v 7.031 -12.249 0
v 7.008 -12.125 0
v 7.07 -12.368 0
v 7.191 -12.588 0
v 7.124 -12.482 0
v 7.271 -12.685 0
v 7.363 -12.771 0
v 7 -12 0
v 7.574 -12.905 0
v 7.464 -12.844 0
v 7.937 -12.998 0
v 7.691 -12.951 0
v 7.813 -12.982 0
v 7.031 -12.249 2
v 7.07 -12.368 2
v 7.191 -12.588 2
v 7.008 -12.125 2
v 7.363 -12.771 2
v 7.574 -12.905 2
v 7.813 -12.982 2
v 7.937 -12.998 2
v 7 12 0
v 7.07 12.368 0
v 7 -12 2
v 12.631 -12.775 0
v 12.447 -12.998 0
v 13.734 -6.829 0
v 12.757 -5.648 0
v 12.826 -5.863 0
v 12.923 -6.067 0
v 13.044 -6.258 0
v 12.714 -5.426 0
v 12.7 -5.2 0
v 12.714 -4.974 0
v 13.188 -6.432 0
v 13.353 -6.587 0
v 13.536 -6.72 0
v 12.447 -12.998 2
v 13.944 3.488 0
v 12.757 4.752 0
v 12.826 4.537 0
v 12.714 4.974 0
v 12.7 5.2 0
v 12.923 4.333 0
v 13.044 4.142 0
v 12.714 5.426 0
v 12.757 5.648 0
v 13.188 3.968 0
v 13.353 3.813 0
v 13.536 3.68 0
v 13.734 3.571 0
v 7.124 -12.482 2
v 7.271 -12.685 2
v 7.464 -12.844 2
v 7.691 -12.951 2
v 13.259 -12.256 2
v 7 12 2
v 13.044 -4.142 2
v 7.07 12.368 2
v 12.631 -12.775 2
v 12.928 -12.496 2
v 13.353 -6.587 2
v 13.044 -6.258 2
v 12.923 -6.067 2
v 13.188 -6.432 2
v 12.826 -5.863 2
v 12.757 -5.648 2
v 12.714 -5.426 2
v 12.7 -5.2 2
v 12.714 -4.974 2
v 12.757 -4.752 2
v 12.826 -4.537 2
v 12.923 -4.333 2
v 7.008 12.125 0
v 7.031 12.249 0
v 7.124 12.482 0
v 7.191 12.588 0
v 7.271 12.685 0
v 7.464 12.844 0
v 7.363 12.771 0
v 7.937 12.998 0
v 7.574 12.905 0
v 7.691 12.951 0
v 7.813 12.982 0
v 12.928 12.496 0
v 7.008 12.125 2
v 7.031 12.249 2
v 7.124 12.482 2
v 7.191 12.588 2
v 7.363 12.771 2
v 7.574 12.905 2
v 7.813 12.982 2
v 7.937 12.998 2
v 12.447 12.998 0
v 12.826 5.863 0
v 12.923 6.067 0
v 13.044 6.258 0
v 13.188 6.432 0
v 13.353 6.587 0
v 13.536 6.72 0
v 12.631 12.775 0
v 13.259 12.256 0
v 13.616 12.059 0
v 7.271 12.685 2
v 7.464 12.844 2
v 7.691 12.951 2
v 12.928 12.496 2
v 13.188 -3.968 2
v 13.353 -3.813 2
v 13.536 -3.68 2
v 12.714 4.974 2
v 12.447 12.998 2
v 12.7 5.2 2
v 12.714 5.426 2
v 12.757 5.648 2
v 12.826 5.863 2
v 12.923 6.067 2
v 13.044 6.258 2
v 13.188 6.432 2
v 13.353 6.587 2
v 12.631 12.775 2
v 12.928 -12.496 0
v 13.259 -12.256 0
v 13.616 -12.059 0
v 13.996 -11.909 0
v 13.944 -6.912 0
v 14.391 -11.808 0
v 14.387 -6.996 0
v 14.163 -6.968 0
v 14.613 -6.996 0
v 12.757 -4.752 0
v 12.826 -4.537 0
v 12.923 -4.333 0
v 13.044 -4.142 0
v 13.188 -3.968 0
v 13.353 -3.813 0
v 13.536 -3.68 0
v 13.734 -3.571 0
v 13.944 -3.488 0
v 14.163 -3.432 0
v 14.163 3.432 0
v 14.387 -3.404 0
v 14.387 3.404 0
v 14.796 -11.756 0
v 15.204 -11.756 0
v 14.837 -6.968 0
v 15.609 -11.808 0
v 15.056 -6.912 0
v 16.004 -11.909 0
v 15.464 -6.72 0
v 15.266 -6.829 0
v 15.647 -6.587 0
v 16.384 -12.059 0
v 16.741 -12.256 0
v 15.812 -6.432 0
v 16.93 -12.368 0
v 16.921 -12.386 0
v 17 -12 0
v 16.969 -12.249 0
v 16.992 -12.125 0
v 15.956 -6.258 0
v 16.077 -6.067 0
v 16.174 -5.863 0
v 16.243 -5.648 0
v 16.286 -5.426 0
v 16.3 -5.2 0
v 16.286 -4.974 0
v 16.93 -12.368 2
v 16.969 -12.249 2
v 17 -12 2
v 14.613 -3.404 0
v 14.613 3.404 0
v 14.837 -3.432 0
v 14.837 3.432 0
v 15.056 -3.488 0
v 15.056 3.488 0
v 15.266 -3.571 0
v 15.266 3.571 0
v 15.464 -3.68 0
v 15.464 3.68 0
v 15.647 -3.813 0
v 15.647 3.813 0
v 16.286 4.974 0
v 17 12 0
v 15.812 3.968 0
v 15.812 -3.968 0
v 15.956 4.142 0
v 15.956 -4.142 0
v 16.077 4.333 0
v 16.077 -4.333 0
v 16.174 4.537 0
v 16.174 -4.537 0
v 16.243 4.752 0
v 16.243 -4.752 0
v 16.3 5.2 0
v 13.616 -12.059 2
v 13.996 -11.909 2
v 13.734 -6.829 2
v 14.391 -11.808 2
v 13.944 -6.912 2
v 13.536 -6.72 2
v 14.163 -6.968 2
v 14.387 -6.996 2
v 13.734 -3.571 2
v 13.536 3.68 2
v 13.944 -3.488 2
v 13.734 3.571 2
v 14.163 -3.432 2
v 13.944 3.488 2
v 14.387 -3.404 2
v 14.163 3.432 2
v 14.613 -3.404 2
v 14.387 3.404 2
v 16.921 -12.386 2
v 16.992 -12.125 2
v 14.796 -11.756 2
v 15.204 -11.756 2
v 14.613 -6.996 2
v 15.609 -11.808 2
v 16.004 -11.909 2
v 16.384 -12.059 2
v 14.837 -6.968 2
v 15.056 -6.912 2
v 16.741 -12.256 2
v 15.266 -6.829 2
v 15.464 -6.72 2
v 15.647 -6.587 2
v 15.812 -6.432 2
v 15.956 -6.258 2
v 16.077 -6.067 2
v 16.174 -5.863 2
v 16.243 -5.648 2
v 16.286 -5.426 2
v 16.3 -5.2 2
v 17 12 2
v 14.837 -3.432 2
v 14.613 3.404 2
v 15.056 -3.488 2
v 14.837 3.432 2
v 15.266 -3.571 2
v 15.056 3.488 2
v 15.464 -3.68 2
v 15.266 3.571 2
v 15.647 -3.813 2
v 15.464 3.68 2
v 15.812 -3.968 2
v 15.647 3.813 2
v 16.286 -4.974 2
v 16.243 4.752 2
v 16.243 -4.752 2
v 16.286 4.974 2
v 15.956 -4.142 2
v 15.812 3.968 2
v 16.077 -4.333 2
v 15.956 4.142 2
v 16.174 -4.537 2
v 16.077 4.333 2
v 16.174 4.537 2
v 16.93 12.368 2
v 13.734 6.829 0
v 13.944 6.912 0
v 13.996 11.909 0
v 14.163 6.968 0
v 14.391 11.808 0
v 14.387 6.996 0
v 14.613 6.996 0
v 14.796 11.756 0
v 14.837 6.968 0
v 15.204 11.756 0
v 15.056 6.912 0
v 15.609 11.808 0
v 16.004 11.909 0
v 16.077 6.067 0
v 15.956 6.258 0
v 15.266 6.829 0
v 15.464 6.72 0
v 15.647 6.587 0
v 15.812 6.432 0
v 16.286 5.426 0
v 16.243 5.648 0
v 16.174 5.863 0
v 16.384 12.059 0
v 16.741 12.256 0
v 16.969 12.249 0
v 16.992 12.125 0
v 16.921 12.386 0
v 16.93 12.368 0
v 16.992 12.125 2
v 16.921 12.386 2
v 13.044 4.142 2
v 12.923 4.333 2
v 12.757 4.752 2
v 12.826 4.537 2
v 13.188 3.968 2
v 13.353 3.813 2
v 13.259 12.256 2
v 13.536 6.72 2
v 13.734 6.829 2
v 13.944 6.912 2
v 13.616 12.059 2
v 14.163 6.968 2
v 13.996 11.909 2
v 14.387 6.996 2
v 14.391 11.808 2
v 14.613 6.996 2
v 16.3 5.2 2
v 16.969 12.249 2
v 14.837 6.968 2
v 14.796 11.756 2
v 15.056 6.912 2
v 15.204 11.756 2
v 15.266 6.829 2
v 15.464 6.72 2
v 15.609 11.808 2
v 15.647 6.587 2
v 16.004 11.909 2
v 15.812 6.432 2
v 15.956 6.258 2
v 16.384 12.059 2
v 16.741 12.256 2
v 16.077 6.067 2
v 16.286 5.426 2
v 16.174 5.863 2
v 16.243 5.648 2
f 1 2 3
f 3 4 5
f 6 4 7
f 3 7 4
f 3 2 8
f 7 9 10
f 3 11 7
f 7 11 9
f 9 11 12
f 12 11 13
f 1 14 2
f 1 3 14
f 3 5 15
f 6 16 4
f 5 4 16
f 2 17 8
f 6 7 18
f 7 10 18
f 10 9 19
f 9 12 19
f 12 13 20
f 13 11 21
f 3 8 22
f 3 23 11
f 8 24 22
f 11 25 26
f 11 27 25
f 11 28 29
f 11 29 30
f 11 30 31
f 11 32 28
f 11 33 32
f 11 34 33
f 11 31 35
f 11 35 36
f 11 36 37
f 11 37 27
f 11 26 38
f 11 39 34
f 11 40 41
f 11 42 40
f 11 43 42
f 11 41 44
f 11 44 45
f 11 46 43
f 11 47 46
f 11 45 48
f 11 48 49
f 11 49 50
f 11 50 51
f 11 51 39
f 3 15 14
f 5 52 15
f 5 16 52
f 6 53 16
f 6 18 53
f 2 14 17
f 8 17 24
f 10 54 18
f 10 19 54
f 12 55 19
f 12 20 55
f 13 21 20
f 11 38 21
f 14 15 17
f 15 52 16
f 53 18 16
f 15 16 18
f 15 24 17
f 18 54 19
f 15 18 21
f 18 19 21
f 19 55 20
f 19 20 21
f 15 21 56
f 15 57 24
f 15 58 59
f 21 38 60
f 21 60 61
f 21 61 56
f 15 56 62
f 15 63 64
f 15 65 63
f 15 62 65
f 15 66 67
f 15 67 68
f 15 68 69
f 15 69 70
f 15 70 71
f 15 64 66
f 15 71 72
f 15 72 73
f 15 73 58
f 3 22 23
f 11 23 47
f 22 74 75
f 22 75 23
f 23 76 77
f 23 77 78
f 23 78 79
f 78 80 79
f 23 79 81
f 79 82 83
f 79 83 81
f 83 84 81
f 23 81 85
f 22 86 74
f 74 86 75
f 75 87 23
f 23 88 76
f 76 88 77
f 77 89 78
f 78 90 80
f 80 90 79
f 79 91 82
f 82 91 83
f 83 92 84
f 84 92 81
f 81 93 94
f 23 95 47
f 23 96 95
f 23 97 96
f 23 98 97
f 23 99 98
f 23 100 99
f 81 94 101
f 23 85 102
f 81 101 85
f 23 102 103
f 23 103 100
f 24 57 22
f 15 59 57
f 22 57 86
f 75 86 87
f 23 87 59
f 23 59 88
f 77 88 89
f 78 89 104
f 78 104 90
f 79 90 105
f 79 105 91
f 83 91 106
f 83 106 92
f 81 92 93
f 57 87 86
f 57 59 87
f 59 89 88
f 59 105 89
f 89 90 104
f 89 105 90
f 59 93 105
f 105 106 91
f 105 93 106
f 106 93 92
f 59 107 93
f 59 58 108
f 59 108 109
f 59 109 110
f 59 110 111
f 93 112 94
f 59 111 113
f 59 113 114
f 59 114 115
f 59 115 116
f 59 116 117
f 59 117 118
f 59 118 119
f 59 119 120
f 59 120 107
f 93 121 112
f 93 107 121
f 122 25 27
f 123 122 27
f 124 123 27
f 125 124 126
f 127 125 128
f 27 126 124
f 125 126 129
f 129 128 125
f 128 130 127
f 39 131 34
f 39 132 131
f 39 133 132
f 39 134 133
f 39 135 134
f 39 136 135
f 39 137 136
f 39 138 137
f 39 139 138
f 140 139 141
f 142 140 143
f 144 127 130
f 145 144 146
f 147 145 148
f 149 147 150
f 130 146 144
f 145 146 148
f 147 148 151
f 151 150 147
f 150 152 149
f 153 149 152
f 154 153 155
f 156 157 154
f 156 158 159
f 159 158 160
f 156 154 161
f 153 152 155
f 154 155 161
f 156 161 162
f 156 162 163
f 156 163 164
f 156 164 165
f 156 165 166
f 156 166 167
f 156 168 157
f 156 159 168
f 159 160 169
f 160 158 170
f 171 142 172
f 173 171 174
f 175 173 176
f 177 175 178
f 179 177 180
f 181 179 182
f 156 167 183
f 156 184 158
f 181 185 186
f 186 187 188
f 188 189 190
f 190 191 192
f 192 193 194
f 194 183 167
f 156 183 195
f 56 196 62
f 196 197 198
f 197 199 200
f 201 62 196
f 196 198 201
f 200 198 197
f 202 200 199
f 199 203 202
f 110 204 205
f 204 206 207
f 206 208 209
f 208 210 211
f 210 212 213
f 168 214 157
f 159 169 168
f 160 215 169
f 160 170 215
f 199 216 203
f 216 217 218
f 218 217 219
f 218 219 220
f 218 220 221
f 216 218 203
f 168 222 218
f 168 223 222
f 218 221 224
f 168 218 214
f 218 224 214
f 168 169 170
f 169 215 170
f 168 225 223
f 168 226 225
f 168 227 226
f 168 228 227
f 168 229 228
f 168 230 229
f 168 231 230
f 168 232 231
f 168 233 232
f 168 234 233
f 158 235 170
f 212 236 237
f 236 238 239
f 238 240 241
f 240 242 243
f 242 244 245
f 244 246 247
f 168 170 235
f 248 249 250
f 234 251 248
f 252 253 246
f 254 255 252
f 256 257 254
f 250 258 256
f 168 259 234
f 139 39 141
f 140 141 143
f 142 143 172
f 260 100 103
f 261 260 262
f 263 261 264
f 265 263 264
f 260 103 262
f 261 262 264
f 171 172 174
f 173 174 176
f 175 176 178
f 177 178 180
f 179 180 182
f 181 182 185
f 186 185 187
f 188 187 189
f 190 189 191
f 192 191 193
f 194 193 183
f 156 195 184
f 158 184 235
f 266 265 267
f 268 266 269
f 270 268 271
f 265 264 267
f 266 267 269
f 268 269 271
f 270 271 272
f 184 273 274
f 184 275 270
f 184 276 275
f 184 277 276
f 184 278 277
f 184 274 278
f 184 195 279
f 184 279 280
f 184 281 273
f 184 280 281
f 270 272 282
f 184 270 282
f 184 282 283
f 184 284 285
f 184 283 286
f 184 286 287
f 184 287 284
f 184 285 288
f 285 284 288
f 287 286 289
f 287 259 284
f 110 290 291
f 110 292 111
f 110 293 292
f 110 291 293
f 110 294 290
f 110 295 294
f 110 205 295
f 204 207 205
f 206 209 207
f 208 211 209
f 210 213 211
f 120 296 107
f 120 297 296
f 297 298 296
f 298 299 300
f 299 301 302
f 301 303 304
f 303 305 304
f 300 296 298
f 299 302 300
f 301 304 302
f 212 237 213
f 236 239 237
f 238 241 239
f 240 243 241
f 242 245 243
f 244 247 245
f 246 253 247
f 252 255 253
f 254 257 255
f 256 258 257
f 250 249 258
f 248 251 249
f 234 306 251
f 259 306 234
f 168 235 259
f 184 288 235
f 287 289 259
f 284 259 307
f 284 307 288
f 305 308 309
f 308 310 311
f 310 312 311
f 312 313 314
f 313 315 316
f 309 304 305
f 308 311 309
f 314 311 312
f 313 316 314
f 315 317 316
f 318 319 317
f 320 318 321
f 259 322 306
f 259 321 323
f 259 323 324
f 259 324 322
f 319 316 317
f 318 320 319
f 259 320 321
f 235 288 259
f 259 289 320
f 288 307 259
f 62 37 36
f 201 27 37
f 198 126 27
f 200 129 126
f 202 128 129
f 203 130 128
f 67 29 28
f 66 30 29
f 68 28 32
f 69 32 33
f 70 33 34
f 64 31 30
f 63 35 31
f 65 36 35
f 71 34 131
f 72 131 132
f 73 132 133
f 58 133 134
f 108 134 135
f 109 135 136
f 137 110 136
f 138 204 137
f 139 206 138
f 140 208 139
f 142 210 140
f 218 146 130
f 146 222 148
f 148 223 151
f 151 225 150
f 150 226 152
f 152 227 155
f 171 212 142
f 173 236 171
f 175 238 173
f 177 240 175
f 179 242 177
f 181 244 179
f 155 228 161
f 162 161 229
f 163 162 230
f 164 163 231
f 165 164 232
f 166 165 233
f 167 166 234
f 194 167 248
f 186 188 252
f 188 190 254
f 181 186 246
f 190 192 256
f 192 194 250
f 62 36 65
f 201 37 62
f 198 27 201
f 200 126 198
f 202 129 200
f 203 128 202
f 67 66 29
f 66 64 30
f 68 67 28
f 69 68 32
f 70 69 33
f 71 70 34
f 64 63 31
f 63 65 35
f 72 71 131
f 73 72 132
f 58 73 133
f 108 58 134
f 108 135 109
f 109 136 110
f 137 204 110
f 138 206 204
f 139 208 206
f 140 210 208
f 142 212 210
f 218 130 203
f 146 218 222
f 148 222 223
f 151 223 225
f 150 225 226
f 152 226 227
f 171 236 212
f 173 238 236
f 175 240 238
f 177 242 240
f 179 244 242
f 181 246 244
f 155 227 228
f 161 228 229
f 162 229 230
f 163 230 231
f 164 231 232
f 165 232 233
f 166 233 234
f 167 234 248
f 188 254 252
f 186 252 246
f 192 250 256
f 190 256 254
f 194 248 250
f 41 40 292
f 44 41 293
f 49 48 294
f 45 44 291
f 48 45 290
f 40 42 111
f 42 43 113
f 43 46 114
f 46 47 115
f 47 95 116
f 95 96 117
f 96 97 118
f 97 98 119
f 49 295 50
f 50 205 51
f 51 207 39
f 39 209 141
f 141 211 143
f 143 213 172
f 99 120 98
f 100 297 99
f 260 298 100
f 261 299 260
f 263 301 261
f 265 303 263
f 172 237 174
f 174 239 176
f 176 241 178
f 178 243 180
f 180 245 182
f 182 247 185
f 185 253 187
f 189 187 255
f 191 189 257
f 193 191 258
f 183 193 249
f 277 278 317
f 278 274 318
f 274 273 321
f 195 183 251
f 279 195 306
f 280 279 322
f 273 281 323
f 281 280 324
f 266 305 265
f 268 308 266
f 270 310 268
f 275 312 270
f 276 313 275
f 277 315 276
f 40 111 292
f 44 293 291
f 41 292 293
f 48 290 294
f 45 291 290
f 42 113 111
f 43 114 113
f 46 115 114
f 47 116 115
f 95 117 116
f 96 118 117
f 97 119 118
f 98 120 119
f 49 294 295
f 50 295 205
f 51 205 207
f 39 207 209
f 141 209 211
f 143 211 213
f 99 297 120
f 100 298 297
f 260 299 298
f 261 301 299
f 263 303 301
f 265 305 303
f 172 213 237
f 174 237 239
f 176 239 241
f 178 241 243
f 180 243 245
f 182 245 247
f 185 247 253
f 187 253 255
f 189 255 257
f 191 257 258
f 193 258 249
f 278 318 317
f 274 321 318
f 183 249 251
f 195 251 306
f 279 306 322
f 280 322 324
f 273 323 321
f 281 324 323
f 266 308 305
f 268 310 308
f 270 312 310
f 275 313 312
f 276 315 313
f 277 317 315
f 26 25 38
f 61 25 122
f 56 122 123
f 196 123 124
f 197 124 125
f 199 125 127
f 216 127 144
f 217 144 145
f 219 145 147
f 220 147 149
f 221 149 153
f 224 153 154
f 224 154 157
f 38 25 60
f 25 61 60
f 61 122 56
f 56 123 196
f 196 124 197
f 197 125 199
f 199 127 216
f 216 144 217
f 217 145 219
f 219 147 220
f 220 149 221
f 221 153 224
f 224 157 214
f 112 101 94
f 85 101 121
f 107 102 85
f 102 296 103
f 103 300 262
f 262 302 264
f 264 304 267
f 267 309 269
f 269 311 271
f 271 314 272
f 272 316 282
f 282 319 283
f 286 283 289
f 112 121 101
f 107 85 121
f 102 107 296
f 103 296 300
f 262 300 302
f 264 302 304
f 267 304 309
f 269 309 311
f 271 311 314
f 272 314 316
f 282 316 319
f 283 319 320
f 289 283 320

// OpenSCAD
$fn = 50;

difference() {
	union() {
		translate(v = [0, 0, 4.5]) {
			rotate(a = [0, 0, 0]) {
				difference() {
					union() {
						translate(v = [12, 0, -4.5]) {
							hull() {
								translate(v = [-4.0, 12.0, 0]) {
									cylinder(h = 2, r = 1);
								}
								translate(v = [4.0, 12.0, 0]) {
									cylinder(h = 2, r = 1);
								}
								translate(v = [-4.0, -12.0, 0]) {
									cylinder(h = 2, r = 1);
								}
								translate(v = [4.0, -12.0, 0]) {
									cylinder(h = 2, r = 1);
								}
							}
						}
					}
					union() {
						translate(v = [14.5, -5.2, -5.5]) {
							cylinder(h = 4, r = 1.8);
						}
						translate(v = [14.5, 5.2, -5.5]) {
							cylinder(h = 4, r = 1.8);
						}
						translate(v = [-30, -15, -5.5]) {
							cylinder(h = 4, r = 3.25);
						}
						translate(v = [-30, 15, -5.5]) {
							cylinder(h = 4, r = 3.25);
						}
						translate(v = [15, -15, -5.5]) {
							cylinder(h = 4, r = 3.25);
						}
						translate(v = [15, 15, -5.5]) {
							cylinder(h = 4, r = 3.25);
						}
					}
				}
			}
		}
	}
	union();
}
